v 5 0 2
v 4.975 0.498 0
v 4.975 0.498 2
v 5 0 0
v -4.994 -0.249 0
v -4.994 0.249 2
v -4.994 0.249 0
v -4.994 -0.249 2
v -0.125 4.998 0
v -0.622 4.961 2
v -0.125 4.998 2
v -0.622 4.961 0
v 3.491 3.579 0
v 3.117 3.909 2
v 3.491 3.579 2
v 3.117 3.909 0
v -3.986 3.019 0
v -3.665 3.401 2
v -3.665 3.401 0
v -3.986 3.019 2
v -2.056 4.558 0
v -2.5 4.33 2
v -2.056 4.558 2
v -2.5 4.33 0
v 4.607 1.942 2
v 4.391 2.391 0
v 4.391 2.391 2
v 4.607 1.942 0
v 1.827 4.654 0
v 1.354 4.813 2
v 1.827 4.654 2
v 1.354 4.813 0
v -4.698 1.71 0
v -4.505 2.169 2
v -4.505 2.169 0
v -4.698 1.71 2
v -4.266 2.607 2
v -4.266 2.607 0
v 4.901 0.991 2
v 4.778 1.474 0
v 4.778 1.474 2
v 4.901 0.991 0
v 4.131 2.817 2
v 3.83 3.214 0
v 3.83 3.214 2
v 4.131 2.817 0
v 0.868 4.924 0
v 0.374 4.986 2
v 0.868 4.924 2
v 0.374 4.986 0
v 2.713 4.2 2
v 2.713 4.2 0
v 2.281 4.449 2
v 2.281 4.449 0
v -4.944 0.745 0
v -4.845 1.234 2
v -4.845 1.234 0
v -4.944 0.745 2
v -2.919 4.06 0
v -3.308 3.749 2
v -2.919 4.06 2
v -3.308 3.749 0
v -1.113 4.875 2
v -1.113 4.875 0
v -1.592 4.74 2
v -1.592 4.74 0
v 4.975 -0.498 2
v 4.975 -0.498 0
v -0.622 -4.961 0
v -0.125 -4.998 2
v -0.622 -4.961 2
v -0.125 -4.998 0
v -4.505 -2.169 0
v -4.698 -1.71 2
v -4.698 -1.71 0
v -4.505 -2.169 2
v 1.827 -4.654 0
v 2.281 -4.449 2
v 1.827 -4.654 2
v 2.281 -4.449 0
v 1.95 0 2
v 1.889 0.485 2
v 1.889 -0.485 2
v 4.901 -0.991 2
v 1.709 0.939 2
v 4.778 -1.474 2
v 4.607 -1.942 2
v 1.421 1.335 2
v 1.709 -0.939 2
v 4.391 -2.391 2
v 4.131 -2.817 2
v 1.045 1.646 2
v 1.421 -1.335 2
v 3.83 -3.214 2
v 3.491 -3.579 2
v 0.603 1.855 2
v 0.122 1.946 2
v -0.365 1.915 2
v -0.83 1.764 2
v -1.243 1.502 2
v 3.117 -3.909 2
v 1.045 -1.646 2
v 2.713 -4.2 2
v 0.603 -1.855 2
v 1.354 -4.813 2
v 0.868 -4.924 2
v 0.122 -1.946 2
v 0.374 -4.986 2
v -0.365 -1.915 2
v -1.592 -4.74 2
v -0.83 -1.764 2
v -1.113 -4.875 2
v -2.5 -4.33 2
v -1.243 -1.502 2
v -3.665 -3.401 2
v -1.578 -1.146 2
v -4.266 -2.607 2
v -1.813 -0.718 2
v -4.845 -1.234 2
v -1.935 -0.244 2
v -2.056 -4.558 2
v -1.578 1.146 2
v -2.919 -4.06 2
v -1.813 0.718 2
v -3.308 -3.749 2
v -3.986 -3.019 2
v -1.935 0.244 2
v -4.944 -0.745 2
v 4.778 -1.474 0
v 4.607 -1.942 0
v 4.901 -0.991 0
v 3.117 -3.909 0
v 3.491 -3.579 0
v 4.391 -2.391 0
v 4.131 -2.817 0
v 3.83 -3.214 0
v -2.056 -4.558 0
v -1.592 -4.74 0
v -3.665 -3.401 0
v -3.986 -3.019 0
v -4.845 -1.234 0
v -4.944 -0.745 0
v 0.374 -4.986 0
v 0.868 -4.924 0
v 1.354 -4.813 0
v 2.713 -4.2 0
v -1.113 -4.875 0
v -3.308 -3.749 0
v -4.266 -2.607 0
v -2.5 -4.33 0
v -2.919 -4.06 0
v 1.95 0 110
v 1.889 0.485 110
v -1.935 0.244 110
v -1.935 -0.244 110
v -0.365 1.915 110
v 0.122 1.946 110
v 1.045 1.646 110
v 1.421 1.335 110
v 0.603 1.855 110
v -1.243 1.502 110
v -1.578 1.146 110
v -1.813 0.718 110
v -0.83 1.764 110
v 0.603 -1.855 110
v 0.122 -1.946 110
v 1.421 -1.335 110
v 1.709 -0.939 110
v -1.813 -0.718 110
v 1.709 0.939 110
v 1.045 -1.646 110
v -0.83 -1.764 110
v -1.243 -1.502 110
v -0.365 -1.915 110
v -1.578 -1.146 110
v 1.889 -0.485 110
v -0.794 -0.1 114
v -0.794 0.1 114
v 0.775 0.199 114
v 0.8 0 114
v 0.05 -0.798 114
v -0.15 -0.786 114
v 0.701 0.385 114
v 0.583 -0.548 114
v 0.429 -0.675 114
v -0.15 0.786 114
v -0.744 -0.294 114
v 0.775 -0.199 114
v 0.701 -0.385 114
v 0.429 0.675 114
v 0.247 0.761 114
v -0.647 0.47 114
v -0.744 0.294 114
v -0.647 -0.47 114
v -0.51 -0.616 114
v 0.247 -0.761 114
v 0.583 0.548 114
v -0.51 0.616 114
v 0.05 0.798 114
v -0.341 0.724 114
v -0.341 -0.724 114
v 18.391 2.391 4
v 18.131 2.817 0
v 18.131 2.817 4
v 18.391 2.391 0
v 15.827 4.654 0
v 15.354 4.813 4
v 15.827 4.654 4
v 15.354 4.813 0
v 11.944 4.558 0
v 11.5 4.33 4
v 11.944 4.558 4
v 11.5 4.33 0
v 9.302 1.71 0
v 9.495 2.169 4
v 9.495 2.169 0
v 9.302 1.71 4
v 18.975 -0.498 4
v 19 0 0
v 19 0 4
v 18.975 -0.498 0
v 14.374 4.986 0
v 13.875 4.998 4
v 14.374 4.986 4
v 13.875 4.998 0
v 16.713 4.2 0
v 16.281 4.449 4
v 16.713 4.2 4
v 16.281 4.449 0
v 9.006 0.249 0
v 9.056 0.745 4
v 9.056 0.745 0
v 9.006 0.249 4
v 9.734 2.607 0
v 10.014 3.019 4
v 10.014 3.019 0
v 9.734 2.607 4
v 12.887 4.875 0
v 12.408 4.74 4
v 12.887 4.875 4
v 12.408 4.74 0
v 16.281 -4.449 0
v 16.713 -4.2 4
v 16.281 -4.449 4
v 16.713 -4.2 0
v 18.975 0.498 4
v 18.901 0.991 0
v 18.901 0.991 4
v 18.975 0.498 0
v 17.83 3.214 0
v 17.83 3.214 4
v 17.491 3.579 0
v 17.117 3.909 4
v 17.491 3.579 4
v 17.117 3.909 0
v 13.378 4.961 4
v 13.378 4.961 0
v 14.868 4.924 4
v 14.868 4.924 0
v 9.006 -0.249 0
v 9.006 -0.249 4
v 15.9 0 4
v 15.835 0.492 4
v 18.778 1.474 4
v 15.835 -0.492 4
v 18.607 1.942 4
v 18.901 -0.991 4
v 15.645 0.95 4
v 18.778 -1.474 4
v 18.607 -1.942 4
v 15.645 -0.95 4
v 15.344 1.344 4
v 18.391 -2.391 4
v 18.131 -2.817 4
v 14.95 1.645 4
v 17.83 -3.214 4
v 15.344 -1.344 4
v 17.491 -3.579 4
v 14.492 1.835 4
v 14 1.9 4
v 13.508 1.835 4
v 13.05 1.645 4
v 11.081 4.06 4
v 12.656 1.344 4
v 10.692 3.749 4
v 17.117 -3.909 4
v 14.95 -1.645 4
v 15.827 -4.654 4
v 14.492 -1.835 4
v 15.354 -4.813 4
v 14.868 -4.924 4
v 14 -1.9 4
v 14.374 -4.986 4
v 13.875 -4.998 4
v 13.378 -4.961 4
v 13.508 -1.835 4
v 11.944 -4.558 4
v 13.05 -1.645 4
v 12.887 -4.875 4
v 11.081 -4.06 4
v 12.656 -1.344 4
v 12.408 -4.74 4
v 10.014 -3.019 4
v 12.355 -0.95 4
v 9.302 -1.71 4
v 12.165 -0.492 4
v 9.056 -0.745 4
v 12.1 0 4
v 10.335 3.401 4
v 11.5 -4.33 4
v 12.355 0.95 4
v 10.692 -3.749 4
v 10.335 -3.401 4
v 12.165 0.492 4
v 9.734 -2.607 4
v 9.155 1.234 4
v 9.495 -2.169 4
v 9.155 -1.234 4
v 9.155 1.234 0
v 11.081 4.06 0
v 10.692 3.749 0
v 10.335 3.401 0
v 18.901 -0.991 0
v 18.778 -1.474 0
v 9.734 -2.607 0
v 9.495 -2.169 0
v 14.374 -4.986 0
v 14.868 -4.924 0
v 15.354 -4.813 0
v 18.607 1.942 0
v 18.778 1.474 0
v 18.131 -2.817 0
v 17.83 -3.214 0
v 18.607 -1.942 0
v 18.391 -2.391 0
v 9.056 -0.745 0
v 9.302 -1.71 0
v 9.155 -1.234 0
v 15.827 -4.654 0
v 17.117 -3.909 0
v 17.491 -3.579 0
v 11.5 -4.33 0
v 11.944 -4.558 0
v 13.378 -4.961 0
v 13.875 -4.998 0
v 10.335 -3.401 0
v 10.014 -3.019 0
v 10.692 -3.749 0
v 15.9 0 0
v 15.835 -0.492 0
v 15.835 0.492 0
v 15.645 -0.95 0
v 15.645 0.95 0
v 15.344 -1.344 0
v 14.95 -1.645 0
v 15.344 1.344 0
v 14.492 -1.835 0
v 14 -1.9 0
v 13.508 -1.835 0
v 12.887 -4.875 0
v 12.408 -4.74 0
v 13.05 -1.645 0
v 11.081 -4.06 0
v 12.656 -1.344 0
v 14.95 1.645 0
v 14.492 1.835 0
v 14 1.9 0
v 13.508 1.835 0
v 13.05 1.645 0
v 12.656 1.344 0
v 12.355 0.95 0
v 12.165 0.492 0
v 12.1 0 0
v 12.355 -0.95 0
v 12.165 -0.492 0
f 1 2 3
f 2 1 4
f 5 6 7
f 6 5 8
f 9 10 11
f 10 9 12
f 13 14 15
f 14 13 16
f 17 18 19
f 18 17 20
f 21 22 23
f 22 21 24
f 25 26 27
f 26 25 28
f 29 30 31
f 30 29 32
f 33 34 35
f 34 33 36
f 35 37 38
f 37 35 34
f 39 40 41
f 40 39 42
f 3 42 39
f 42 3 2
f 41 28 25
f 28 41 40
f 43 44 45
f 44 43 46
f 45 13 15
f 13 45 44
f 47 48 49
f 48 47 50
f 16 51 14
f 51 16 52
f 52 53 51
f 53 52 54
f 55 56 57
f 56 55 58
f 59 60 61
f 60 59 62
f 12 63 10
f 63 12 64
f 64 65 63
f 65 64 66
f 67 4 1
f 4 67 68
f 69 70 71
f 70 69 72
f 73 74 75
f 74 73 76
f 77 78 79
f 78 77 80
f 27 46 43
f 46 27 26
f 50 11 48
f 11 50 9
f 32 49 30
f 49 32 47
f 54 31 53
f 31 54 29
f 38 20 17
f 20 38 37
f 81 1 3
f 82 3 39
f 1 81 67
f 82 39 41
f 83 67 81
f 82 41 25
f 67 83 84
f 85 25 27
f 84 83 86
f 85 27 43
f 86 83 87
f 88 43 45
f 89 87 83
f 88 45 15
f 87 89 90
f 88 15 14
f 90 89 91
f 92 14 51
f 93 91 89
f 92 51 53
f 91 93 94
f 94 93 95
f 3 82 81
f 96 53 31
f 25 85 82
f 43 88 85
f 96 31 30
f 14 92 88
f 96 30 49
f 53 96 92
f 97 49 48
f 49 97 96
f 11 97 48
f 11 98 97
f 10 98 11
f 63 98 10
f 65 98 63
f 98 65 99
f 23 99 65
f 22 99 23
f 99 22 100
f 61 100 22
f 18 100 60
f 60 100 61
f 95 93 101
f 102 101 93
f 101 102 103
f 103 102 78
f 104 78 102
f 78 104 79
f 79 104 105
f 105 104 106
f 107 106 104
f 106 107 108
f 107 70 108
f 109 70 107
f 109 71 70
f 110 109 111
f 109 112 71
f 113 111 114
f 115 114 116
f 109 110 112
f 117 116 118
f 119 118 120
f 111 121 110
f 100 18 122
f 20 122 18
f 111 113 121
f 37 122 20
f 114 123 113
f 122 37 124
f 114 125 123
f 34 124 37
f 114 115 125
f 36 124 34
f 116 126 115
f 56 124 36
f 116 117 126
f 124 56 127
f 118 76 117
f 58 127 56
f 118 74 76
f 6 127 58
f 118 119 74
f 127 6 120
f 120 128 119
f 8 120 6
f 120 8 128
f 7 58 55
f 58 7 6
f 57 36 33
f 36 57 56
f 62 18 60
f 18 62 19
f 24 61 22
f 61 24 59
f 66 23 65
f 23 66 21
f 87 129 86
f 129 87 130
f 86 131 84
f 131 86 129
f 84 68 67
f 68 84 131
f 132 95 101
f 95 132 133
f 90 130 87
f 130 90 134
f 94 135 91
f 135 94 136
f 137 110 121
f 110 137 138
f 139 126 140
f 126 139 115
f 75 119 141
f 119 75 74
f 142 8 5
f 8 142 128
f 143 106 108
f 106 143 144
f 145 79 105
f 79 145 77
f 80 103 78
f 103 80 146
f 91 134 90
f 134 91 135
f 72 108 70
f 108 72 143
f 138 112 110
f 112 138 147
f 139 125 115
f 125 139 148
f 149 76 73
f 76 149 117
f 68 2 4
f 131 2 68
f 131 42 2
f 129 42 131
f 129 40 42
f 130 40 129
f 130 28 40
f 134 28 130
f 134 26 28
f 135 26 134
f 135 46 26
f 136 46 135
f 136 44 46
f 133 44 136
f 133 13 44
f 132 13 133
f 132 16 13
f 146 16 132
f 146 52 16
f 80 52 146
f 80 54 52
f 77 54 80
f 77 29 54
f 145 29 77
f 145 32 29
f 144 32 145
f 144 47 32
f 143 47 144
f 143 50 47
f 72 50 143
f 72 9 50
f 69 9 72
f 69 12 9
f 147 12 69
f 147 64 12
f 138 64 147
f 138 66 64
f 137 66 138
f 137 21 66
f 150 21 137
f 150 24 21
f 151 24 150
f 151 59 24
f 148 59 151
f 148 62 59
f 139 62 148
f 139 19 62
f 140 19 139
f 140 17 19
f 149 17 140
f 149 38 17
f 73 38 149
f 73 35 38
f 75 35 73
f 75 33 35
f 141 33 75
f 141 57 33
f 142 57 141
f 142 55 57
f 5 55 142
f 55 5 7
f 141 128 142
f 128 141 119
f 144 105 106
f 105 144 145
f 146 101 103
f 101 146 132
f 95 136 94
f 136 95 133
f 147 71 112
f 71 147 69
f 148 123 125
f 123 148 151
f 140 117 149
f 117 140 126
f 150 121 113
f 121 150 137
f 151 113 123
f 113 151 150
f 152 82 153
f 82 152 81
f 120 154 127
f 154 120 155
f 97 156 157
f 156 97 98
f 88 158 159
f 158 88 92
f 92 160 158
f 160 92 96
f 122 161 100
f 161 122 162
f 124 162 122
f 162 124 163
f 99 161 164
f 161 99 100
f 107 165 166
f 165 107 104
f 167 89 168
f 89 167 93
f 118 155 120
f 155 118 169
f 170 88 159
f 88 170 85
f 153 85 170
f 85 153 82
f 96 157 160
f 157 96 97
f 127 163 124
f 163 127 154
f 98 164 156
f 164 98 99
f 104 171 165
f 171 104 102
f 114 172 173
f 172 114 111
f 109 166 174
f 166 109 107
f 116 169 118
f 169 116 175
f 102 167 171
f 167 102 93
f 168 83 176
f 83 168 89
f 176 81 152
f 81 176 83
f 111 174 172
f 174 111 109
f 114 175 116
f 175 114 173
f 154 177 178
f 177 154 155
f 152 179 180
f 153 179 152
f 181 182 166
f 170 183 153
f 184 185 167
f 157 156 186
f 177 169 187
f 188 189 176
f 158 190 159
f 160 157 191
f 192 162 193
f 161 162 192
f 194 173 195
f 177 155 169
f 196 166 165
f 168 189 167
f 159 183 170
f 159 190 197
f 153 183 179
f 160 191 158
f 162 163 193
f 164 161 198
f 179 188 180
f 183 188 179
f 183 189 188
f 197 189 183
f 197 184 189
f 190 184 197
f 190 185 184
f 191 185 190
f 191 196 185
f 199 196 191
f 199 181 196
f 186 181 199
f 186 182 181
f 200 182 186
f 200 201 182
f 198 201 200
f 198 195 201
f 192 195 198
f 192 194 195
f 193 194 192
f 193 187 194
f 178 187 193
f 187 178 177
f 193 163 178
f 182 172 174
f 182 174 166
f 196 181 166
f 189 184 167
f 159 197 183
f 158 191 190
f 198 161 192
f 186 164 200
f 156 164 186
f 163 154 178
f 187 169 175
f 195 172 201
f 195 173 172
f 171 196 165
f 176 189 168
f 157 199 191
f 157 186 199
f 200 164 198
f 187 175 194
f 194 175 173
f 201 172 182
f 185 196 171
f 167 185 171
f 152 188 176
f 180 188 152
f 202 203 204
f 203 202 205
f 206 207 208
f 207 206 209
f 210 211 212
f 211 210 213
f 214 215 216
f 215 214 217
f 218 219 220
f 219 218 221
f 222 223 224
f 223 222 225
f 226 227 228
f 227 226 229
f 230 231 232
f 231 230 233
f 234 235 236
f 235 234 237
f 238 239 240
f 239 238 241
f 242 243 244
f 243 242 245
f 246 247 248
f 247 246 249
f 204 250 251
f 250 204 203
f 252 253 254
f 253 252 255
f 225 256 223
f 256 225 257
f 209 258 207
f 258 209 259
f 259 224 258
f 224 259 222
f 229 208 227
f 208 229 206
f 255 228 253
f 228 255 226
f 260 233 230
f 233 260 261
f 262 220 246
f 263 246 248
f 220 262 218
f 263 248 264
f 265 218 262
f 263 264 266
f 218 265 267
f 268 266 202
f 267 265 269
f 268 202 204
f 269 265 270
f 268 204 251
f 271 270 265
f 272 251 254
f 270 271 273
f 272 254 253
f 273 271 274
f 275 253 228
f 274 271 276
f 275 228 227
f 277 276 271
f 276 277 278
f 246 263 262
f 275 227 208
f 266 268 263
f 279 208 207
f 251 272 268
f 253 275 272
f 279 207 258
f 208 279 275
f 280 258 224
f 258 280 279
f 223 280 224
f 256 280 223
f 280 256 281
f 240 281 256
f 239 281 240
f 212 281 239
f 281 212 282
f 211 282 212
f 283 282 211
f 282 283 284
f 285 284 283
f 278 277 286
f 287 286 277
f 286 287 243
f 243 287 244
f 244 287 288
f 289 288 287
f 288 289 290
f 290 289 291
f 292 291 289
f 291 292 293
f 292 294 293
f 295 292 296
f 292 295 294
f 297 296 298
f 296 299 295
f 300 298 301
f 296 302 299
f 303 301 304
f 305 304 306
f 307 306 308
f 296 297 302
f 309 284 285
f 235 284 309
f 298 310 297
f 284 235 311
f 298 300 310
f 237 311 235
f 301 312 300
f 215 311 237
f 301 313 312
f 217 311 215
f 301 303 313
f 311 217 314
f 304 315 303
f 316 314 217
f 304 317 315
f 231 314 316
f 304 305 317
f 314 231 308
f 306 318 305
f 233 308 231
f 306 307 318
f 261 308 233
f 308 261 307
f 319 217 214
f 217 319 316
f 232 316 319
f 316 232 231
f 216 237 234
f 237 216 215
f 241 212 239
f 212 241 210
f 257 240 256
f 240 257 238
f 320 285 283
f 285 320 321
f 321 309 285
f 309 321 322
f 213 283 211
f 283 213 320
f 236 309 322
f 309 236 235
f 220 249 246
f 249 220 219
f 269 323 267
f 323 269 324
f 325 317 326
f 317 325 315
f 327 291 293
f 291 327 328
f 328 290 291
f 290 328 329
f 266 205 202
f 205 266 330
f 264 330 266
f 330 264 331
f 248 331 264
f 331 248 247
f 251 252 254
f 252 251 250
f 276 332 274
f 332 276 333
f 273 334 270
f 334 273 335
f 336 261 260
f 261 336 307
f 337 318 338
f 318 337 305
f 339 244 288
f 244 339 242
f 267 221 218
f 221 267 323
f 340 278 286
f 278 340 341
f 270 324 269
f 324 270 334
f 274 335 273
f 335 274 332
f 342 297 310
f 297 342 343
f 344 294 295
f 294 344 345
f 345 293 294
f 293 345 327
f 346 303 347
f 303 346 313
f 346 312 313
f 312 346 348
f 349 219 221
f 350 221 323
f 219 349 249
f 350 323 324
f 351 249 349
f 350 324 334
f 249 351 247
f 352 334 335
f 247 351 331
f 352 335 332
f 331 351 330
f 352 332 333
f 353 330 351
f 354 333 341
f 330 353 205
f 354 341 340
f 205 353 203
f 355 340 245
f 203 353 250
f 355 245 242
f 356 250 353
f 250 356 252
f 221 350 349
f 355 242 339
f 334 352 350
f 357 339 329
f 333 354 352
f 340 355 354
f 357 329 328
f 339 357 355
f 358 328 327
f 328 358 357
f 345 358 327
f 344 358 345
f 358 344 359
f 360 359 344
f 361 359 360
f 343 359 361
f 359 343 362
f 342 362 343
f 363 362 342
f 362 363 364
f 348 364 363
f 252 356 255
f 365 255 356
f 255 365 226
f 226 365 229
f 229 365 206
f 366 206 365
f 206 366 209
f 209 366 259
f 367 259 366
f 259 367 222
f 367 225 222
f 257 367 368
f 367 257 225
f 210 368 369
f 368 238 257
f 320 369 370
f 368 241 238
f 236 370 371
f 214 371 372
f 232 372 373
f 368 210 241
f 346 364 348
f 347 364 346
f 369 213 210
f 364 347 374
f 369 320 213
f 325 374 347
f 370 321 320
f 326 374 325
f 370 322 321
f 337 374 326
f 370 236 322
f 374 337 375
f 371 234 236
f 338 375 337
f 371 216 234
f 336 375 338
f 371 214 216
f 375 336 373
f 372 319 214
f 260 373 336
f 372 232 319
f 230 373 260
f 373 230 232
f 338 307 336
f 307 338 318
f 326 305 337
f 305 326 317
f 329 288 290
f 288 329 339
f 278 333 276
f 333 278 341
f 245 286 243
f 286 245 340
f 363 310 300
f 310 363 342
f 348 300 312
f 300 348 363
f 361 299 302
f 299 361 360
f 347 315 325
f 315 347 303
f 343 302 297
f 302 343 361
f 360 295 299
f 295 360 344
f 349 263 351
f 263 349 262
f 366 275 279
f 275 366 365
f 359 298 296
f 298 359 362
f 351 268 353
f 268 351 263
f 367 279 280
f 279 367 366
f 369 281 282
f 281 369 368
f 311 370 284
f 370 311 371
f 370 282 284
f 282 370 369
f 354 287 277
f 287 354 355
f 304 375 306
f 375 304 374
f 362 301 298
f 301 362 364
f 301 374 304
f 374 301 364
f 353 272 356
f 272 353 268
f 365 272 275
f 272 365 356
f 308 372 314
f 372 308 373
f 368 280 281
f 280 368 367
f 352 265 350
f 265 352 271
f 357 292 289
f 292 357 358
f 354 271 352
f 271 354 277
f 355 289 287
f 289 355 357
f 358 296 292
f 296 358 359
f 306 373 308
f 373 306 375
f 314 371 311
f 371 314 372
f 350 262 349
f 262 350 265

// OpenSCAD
// file: ../parametros.scad
// ============================================================
// parametros.scad — dimensões compartilhadas do robô
// Todas as medidas em milímetros.
// ============================================================

$fa = 4;
$fs = 0.5;

// ---------- tolerância de impressão ----------
folga = 0.3;        // folga padrão em furos/encaixes
folga_berco = 0.6;
aperto_trava = 0.1;
passagem_w = 12;
passagem_d = 8;

// ---------- roda ----------
roda_d   = 36;      // diâmetro da roda
roda_w   = 10;      // largura da roda
eixo_d   = 4;       // diâmetro do eixo (haste impressa ou M4)
eixo_l   = 112;     // comprimento do eixo (haste + chanfro)

// ---------- base (chassi) ----------
base_w  = 84;       // largura (X)
base_d  = 74;       // profundidade (Y)
base_h  = 40;       // altura
parede  = 2.4;      // espessura das paredes (todas as peças)
eixo_z  = 12;       // altura do centro do eixo medida do fundo do chassi
roda_y  = roda_d/2 + 3;       // distância do centro do chassi ao centro de cada roda (Y)

// ---------- compartimento das pilhas ----------
// baia dimensionada para suporte comercial 4xAA (~62 x 58 x 17)
// ou para o suporte impresso em suporte_pilhas.scad
aa_bay_w = 72;
aa_bay_d = 58;
aa_dia   = 14.5;    // diâmetro da pilha AA
aa_comp  = 50.5;    // comprimento da pilha AA
suporte_z = eixo_z + 6 + 2*folga;
roda_x = base_w/2 + 2*folga + roda_w/2;
eixo_x = -roda_x - roda_w/2 - folga;

assert(2*roda_y >= roda_d + 2, "Rodas sem folga longitudinal");
assert(roda_y + 6 <= base_d/2, "Buchas fora do chassi");
assert(suporte_z + max(3 + aa_dia, 17) + folga <= base_h,
       "Pilhas acima do topo do chassi");
assert(eixo_z - eixo_d/2 - folga >= parede, "Eixo invade o fundo do chassi");
assert(eixo_x + eixo_l - 4 >= roda_x + roda_w/2 + folga + 2,
       "Eixo curto para as rodas e a trava");

// ---------- corpo (torso) ----------
// mesma pegada do chassi: as paredes alinham e as colunas de
// fixação ficam uma sobre a outra
corpo_w = 84;
corpo_d = 74;
corpo_h = 62;

// posição das colunas de fixação torso↔base (parafuso M3)
mont_x = 36.5;
mont_y = 32;
acesso_m3_d = 7;

// ---------- micro:bit ----------
mb_w    = 51.6;     // largura da placa
mb_h    = 42;       // altura da placa
mb_prof = 11;       // profundidade do bolso (placa + componentes + fios)
mb_base_z = 18;

// ---------- botões ----------
botao_d   = 12.4;   // botão de painel de 12 mm
botao_sep = 26;     // distância entre centros dos botões
botao_z = 9;
botao_prof = 10;
botao_porca_d = 16;

// ---------- cabeça ----------
cab_w   = 58;
cab_d   = 50;
cab_h   = 48;
led_tam = 33;       // janela p/ matriz LED 8x8 (~32 mm) ou OLED pequeno
led_prof = 8;       // profundidade do alojamento do display
led_base_z = 8;
cab_pino_h = led_base_z - 3 - 2*folga;

assert(mb_base_z + mb_h + folga <= corpo_h, "Microbit acima do torso");
assert(led_base_z + led_tam + folga <= cab_h - parede, "Display acima da cabeca");
assert(cab_pino_h > parede, "Pino da cabeca sem engate");
assert(botao_z + botao_porca_d/2 + folga <= mb_base_z, "Botoes invadem a placa");
assert(botao_prof + folga < mb_prof + 2*folga, "Botoes invadem o painel interno");
assert(acesso_m3_d >= 6 + 2*folga, "Acesso insuficiente para cabeca do parafuso");
assert(aperto_trava > 0 && aperto_trava <= 0.2, "Calibre a interferencia das travas");

// ---------- braço ----------
braco_furo = 4.4;   // furo da articulação (parafuso M4 ou pino impresso)
braco_e    = 7;     // espessura dos segmentos do braço
brac_a     = 16;    // distância entre furos do segmento superior
brac_b     = 16;    // comprimento do antebraço até a palma
brac_r     = 7;     // raio das extremidades arredondadas

// ---------- auxiliar: caixa com cantos arredondados ----------
// caixa de w x d x h, centrada em X/Y, base em z = 0
module rbox(w, d, h, r = 3) {
    hull()
        for (x = [-1, 1], y = [-1, 1])
            translate([x * (w/2 - r), y * (d/2 - r), 0])
                cylinder(r = r, h = h);
}
// main file
// ============================================================
// eixo.scad — eixo das rodas e trava (imprimir 2 conjuntos)
// O eixo atravessa o chassi; a roda gira livre sobre ele e a
// trava é pressionada na ponta. Alternativa: usar parafuso M4.
// ============================================================

include <../parametros.scad>

module eixo() {
    // haste com cabeça (batente) e ponta chanfrada
    rotate([0, 90, 0]) {
        translate([0, 0, -2])
            cylinder(d = 10, h = 2);                 // cabeça
        cylinder(d = eixo_d - 0.1, h = eixo_l - 4);  // haste
        translate([0, 0, eixo_l - 4])
            cylinder(d1 = eixo_d - 0.1, d2 = eixo_d - 2.4,
                     h = 4);                          // chanfro
    }
}

module trava_eixo() {
    // anel de pressão: furo apertado que segura na ponta do eixo
    difference() {
        cylinder(d = 10, h = 4);
        translate([0, 0, -0.1])
            cylinder(d = eixo_d - 0.1 - aperto_trava, h = 4.2);
    }
}

// layout para impressão: eixo + trava lado a lado
module eixo_impressao() {
    translate([0, 0, 2]) rotate([0, -90, 0]) eixo();
    translate([14, 0, 0]) trava_eixo();
}

eixo_impressao();
